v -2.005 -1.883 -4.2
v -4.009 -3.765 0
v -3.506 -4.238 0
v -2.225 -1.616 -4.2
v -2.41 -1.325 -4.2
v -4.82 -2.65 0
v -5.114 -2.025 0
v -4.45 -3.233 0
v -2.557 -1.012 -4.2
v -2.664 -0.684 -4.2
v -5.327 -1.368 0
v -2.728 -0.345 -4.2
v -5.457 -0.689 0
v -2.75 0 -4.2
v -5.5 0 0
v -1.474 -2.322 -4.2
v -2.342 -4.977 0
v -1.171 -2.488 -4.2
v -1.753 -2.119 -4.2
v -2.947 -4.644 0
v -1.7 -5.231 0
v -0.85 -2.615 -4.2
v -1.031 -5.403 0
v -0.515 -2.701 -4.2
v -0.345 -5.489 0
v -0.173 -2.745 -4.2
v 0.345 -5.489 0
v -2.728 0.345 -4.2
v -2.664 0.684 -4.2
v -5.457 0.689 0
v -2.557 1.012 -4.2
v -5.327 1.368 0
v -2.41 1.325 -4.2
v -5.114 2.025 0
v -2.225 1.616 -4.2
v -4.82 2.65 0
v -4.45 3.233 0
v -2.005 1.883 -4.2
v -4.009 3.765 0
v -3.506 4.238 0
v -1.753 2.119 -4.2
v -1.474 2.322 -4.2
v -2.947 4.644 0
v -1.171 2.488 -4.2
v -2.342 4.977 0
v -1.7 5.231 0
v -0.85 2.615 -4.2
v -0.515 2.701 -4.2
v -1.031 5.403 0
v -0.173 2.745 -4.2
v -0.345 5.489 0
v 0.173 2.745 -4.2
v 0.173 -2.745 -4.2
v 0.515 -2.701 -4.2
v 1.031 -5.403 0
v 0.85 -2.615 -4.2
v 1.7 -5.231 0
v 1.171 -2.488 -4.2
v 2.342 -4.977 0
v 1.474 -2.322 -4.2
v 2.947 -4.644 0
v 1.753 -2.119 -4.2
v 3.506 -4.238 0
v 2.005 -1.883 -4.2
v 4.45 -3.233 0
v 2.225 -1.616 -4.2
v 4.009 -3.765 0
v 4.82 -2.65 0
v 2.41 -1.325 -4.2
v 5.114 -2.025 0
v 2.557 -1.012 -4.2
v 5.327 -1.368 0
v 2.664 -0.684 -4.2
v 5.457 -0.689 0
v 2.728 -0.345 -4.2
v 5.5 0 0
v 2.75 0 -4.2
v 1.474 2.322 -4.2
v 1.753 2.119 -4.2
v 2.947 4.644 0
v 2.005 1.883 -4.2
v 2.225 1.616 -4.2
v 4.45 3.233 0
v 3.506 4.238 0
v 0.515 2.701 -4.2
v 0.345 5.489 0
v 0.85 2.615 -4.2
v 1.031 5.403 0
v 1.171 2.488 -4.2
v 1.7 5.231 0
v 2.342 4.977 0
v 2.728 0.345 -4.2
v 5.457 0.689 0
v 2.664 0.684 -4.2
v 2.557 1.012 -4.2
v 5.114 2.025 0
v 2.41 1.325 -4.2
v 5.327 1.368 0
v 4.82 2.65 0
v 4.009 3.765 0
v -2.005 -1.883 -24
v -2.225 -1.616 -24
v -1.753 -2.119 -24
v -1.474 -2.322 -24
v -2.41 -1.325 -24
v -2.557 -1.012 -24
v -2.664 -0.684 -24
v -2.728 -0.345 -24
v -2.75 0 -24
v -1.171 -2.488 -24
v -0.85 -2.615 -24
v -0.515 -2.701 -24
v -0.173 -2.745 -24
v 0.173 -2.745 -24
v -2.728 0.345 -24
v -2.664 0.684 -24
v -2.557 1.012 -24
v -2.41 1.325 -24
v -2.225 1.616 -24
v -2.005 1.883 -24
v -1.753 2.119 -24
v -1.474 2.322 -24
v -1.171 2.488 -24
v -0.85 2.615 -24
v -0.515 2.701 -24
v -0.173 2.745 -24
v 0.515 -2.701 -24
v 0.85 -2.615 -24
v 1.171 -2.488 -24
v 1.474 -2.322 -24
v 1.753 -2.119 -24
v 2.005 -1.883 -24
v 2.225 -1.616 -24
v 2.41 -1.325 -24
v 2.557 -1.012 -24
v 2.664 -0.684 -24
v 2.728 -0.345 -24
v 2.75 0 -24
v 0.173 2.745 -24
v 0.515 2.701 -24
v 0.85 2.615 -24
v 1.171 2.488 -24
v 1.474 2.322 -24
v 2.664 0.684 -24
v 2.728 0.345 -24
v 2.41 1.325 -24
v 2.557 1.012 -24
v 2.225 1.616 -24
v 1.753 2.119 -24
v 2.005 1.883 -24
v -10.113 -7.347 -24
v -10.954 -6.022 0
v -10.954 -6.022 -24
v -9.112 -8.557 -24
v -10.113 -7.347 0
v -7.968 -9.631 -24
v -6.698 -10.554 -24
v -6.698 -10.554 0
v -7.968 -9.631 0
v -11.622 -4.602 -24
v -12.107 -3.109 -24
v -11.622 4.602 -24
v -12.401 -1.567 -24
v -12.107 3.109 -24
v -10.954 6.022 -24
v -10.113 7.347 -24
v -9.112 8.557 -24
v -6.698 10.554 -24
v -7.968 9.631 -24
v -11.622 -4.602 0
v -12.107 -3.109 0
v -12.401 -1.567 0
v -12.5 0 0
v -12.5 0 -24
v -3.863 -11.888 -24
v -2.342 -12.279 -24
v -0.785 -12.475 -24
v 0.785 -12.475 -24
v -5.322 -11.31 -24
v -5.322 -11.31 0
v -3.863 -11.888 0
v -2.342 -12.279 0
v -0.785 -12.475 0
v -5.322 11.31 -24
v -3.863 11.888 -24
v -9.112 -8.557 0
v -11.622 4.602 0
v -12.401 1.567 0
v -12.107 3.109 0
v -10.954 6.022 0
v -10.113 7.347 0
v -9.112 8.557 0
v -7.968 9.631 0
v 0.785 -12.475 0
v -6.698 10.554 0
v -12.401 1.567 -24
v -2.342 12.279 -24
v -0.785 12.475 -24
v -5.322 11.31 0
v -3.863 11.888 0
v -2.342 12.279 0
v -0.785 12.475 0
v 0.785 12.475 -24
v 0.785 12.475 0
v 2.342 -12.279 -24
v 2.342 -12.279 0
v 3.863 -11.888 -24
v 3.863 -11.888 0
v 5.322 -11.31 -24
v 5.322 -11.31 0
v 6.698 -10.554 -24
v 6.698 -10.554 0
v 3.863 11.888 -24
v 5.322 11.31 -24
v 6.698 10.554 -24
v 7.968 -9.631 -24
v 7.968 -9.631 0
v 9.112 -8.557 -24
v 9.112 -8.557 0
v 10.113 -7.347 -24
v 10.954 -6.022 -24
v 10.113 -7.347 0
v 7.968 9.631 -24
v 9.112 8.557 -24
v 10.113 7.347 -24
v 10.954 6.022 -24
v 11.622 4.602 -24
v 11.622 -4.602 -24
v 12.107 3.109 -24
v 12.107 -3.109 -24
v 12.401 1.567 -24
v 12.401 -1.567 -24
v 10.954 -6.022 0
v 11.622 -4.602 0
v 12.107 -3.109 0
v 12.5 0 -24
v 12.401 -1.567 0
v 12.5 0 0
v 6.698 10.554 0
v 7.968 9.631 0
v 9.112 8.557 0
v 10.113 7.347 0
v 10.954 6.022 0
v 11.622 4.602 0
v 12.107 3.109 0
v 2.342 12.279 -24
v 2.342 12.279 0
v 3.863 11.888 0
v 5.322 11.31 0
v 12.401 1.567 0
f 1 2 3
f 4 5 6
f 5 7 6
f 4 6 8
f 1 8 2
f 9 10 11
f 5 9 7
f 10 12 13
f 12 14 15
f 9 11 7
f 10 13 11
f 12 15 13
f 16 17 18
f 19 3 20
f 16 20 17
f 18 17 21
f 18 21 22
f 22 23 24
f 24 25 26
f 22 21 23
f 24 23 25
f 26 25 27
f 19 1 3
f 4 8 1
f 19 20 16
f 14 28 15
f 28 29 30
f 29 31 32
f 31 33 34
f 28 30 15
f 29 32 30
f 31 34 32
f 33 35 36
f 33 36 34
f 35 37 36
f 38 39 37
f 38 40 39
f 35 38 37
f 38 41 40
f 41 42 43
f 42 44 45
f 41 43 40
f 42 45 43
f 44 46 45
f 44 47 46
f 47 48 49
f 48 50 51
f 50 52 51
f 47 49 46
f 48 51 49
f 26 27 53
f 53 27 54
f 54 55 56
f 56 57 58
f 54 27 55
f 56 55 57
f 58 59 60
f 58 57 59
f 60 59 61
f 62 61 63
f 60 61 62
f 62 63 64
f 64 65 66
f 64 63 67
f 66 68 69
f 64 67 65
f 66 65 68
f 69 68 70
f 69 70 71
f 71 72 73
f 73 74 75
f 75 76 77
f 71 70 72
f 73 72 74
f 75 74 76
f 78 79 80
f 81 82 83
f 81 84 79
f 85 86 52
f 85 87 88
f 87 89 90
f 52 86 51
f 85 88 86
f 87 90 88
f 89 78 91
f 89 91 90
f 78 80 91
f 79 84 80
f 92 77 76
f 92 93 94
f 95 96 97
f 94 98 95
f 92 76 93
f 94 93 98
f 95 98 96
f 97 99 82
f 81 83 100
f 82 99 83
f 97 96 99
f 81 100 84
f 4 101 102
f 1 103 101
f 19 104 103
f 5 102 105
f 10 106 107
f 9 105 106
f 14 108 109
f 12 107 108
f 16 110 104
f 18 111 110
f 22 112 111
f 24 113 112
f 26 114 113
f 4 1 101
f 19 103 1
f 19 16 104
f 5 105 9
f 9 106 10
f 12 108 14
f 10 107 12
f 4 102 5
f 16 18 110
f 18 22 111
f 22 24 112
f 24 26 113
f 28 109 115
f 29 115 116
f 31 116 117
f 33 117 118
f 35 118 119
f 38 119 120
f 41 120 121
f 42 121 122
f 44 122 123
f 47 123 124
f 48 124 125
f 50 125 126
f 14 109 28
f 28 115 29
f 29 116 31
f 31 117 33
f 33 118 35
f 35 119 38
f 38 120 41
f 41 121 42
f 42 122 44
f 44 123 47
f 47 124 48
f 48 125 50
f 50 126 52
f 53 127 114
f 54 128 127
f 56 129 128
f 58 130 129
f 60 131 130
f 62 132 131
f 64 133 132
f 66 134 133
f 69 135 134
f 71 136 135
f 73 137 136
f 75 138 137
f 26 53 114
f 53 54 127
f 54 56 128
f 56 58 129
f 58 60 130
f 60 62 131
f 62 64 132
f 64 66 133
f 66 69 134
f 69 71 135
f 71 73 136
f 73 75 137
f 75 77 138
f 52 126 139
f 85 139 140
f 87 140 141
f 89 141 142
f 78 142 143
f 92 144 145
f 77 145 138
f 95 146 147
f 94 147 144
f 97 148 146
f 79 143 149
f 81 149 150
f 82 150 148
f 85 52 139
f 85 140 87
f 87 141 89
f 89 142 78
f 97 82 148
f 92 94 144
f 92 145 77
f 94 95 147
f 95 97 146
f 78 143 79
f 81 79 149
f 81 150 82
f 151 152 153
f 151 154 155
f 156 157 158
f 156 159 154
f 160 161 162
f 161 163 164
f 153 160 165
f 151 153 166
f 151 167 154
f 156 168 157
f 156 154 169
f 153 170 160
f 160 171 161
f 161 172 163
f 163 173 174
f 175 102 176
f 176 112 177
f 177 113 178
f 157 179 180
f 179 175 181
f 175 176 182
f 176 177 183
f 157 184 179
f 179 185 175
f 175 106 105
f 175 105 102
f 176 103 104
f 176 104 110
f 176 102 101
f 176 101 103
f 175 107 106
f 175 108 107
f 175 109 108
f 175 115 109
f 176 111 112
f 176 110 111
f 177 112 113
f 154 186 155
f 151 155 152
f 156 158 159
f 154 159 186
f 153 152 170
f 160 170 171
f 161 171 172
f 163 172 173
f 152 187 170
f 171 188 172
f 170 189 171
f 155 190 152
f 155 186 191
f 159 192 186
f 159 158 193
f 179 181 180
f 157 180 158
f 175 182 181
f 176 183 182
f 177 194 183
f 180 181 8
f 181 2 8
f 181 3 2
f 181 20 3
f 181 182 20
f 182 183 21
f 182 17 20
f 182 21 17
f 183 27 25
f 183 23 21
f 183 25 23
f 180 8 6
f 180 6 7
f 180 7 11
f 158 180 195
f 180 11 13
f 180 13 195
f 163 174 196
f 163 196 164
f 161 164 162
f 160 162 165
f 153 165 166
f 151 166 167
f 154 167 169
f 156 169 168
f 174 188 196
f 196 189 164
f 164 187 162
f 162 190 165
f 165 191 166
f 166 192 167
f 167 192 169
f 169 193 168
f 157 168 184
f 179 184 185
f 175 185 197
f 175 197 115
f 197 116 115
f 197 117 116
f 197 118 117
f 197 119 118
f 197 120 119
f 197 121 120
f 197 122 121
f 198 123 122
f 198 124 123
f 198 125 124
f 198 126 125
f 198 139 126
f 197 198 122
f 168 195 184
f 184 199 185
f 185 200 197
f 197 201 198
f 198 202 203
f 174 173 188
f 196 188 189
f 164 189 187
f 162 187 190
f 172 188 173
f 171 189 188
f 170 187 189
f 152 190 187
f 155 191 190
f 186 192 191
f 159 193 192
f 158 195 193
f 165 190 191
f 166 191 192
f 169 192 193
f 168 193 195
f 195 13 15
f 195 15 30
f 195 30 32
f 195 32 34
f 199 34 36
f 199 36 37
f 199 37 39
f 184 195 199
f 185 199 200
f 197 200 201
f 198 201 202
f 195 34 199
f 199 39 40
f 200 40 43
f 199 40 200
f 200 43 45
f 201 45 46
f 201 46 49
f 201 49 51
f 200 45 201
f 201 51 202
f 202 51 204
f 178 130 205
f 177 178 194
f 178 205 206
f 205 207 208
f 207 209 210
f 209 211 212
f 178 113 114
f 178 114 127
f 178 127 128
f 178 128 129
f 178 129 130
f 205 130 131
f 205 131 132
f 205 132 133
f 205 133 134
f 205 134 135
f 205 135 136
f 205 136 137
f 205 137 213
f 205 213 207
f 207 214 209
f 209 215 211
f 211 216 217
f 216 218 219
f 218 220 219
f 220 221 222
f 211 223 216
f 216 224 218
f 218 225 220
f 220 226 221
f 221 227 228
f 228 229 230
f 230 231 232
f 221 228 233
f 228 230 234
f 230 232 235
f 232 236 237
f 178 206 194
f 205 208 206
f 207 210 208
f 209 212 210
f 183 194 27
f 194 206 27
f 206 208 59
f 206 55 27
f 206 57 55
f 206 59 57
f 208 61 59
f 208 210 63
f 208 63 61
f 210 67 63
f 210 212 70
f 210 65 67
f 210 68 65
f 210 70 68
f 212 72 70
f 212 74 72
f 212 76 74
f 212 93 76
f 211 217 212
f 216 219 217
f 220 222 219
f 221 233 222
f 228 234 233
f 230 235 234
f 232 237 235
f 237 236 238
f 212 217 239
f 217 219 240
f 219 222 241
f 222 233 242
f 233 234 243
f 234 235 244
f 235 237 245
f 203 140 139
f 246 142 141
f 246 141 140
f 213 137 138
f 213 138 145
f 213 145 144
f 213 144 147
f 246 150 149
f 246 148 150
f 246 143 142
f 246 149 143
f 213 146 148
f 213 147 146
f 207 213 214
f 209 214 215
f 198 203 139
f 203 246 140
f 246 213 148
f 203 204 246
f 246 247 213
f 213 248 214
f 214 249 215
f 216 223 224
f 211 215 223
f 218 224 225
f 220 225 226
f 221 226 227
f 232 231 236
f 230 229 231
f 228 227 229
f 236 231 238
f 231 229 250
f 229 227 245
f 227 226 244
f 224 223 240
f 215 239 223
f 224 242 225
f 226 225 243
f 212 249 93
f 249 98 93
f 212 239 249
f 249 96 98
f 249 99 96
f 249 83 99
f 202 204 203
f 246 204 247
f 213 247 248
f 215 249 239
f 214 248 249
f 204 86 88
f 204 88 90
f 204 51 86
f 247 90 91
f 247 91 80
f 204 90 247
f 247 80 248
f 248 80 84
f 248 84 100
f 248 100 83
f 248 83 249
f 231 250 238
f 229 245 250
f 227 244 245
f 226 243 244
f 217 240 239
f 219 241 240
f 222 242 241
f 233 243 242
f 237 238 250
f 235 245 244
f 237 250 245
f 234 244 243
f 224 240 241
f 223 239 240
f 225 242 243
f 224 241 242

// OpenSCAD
$fn = 50;

difference() {
	union() {
		translate(v = [0, 0, -24.0]) {
			cylinder(h = 24, r = 12.5);
		}
	}
	union() {
		translate(v = [0, 0, 0]) {
			rotate(a = [0, 0, 0]) {
				difference() {
					union() {
						translate(v = [0, 0, -27.0]) {
							cylinder(h = 27, r = 2.25);
						}
						translate(v = [0, 0, -4.2]) {
							cylinder(h = 4.2, r1 = 2.75, r2 = 5.5);
						}
						translate(v = [0, 0, -27.0]) {
							cylinder(h = 27, r = 2.75);
						}
						translate(v = [0, 0, -27.0]) {
							cylinder(h = 27, r = 2.25);
						}
					}
					union();
				}
			}
		}
	}
}
